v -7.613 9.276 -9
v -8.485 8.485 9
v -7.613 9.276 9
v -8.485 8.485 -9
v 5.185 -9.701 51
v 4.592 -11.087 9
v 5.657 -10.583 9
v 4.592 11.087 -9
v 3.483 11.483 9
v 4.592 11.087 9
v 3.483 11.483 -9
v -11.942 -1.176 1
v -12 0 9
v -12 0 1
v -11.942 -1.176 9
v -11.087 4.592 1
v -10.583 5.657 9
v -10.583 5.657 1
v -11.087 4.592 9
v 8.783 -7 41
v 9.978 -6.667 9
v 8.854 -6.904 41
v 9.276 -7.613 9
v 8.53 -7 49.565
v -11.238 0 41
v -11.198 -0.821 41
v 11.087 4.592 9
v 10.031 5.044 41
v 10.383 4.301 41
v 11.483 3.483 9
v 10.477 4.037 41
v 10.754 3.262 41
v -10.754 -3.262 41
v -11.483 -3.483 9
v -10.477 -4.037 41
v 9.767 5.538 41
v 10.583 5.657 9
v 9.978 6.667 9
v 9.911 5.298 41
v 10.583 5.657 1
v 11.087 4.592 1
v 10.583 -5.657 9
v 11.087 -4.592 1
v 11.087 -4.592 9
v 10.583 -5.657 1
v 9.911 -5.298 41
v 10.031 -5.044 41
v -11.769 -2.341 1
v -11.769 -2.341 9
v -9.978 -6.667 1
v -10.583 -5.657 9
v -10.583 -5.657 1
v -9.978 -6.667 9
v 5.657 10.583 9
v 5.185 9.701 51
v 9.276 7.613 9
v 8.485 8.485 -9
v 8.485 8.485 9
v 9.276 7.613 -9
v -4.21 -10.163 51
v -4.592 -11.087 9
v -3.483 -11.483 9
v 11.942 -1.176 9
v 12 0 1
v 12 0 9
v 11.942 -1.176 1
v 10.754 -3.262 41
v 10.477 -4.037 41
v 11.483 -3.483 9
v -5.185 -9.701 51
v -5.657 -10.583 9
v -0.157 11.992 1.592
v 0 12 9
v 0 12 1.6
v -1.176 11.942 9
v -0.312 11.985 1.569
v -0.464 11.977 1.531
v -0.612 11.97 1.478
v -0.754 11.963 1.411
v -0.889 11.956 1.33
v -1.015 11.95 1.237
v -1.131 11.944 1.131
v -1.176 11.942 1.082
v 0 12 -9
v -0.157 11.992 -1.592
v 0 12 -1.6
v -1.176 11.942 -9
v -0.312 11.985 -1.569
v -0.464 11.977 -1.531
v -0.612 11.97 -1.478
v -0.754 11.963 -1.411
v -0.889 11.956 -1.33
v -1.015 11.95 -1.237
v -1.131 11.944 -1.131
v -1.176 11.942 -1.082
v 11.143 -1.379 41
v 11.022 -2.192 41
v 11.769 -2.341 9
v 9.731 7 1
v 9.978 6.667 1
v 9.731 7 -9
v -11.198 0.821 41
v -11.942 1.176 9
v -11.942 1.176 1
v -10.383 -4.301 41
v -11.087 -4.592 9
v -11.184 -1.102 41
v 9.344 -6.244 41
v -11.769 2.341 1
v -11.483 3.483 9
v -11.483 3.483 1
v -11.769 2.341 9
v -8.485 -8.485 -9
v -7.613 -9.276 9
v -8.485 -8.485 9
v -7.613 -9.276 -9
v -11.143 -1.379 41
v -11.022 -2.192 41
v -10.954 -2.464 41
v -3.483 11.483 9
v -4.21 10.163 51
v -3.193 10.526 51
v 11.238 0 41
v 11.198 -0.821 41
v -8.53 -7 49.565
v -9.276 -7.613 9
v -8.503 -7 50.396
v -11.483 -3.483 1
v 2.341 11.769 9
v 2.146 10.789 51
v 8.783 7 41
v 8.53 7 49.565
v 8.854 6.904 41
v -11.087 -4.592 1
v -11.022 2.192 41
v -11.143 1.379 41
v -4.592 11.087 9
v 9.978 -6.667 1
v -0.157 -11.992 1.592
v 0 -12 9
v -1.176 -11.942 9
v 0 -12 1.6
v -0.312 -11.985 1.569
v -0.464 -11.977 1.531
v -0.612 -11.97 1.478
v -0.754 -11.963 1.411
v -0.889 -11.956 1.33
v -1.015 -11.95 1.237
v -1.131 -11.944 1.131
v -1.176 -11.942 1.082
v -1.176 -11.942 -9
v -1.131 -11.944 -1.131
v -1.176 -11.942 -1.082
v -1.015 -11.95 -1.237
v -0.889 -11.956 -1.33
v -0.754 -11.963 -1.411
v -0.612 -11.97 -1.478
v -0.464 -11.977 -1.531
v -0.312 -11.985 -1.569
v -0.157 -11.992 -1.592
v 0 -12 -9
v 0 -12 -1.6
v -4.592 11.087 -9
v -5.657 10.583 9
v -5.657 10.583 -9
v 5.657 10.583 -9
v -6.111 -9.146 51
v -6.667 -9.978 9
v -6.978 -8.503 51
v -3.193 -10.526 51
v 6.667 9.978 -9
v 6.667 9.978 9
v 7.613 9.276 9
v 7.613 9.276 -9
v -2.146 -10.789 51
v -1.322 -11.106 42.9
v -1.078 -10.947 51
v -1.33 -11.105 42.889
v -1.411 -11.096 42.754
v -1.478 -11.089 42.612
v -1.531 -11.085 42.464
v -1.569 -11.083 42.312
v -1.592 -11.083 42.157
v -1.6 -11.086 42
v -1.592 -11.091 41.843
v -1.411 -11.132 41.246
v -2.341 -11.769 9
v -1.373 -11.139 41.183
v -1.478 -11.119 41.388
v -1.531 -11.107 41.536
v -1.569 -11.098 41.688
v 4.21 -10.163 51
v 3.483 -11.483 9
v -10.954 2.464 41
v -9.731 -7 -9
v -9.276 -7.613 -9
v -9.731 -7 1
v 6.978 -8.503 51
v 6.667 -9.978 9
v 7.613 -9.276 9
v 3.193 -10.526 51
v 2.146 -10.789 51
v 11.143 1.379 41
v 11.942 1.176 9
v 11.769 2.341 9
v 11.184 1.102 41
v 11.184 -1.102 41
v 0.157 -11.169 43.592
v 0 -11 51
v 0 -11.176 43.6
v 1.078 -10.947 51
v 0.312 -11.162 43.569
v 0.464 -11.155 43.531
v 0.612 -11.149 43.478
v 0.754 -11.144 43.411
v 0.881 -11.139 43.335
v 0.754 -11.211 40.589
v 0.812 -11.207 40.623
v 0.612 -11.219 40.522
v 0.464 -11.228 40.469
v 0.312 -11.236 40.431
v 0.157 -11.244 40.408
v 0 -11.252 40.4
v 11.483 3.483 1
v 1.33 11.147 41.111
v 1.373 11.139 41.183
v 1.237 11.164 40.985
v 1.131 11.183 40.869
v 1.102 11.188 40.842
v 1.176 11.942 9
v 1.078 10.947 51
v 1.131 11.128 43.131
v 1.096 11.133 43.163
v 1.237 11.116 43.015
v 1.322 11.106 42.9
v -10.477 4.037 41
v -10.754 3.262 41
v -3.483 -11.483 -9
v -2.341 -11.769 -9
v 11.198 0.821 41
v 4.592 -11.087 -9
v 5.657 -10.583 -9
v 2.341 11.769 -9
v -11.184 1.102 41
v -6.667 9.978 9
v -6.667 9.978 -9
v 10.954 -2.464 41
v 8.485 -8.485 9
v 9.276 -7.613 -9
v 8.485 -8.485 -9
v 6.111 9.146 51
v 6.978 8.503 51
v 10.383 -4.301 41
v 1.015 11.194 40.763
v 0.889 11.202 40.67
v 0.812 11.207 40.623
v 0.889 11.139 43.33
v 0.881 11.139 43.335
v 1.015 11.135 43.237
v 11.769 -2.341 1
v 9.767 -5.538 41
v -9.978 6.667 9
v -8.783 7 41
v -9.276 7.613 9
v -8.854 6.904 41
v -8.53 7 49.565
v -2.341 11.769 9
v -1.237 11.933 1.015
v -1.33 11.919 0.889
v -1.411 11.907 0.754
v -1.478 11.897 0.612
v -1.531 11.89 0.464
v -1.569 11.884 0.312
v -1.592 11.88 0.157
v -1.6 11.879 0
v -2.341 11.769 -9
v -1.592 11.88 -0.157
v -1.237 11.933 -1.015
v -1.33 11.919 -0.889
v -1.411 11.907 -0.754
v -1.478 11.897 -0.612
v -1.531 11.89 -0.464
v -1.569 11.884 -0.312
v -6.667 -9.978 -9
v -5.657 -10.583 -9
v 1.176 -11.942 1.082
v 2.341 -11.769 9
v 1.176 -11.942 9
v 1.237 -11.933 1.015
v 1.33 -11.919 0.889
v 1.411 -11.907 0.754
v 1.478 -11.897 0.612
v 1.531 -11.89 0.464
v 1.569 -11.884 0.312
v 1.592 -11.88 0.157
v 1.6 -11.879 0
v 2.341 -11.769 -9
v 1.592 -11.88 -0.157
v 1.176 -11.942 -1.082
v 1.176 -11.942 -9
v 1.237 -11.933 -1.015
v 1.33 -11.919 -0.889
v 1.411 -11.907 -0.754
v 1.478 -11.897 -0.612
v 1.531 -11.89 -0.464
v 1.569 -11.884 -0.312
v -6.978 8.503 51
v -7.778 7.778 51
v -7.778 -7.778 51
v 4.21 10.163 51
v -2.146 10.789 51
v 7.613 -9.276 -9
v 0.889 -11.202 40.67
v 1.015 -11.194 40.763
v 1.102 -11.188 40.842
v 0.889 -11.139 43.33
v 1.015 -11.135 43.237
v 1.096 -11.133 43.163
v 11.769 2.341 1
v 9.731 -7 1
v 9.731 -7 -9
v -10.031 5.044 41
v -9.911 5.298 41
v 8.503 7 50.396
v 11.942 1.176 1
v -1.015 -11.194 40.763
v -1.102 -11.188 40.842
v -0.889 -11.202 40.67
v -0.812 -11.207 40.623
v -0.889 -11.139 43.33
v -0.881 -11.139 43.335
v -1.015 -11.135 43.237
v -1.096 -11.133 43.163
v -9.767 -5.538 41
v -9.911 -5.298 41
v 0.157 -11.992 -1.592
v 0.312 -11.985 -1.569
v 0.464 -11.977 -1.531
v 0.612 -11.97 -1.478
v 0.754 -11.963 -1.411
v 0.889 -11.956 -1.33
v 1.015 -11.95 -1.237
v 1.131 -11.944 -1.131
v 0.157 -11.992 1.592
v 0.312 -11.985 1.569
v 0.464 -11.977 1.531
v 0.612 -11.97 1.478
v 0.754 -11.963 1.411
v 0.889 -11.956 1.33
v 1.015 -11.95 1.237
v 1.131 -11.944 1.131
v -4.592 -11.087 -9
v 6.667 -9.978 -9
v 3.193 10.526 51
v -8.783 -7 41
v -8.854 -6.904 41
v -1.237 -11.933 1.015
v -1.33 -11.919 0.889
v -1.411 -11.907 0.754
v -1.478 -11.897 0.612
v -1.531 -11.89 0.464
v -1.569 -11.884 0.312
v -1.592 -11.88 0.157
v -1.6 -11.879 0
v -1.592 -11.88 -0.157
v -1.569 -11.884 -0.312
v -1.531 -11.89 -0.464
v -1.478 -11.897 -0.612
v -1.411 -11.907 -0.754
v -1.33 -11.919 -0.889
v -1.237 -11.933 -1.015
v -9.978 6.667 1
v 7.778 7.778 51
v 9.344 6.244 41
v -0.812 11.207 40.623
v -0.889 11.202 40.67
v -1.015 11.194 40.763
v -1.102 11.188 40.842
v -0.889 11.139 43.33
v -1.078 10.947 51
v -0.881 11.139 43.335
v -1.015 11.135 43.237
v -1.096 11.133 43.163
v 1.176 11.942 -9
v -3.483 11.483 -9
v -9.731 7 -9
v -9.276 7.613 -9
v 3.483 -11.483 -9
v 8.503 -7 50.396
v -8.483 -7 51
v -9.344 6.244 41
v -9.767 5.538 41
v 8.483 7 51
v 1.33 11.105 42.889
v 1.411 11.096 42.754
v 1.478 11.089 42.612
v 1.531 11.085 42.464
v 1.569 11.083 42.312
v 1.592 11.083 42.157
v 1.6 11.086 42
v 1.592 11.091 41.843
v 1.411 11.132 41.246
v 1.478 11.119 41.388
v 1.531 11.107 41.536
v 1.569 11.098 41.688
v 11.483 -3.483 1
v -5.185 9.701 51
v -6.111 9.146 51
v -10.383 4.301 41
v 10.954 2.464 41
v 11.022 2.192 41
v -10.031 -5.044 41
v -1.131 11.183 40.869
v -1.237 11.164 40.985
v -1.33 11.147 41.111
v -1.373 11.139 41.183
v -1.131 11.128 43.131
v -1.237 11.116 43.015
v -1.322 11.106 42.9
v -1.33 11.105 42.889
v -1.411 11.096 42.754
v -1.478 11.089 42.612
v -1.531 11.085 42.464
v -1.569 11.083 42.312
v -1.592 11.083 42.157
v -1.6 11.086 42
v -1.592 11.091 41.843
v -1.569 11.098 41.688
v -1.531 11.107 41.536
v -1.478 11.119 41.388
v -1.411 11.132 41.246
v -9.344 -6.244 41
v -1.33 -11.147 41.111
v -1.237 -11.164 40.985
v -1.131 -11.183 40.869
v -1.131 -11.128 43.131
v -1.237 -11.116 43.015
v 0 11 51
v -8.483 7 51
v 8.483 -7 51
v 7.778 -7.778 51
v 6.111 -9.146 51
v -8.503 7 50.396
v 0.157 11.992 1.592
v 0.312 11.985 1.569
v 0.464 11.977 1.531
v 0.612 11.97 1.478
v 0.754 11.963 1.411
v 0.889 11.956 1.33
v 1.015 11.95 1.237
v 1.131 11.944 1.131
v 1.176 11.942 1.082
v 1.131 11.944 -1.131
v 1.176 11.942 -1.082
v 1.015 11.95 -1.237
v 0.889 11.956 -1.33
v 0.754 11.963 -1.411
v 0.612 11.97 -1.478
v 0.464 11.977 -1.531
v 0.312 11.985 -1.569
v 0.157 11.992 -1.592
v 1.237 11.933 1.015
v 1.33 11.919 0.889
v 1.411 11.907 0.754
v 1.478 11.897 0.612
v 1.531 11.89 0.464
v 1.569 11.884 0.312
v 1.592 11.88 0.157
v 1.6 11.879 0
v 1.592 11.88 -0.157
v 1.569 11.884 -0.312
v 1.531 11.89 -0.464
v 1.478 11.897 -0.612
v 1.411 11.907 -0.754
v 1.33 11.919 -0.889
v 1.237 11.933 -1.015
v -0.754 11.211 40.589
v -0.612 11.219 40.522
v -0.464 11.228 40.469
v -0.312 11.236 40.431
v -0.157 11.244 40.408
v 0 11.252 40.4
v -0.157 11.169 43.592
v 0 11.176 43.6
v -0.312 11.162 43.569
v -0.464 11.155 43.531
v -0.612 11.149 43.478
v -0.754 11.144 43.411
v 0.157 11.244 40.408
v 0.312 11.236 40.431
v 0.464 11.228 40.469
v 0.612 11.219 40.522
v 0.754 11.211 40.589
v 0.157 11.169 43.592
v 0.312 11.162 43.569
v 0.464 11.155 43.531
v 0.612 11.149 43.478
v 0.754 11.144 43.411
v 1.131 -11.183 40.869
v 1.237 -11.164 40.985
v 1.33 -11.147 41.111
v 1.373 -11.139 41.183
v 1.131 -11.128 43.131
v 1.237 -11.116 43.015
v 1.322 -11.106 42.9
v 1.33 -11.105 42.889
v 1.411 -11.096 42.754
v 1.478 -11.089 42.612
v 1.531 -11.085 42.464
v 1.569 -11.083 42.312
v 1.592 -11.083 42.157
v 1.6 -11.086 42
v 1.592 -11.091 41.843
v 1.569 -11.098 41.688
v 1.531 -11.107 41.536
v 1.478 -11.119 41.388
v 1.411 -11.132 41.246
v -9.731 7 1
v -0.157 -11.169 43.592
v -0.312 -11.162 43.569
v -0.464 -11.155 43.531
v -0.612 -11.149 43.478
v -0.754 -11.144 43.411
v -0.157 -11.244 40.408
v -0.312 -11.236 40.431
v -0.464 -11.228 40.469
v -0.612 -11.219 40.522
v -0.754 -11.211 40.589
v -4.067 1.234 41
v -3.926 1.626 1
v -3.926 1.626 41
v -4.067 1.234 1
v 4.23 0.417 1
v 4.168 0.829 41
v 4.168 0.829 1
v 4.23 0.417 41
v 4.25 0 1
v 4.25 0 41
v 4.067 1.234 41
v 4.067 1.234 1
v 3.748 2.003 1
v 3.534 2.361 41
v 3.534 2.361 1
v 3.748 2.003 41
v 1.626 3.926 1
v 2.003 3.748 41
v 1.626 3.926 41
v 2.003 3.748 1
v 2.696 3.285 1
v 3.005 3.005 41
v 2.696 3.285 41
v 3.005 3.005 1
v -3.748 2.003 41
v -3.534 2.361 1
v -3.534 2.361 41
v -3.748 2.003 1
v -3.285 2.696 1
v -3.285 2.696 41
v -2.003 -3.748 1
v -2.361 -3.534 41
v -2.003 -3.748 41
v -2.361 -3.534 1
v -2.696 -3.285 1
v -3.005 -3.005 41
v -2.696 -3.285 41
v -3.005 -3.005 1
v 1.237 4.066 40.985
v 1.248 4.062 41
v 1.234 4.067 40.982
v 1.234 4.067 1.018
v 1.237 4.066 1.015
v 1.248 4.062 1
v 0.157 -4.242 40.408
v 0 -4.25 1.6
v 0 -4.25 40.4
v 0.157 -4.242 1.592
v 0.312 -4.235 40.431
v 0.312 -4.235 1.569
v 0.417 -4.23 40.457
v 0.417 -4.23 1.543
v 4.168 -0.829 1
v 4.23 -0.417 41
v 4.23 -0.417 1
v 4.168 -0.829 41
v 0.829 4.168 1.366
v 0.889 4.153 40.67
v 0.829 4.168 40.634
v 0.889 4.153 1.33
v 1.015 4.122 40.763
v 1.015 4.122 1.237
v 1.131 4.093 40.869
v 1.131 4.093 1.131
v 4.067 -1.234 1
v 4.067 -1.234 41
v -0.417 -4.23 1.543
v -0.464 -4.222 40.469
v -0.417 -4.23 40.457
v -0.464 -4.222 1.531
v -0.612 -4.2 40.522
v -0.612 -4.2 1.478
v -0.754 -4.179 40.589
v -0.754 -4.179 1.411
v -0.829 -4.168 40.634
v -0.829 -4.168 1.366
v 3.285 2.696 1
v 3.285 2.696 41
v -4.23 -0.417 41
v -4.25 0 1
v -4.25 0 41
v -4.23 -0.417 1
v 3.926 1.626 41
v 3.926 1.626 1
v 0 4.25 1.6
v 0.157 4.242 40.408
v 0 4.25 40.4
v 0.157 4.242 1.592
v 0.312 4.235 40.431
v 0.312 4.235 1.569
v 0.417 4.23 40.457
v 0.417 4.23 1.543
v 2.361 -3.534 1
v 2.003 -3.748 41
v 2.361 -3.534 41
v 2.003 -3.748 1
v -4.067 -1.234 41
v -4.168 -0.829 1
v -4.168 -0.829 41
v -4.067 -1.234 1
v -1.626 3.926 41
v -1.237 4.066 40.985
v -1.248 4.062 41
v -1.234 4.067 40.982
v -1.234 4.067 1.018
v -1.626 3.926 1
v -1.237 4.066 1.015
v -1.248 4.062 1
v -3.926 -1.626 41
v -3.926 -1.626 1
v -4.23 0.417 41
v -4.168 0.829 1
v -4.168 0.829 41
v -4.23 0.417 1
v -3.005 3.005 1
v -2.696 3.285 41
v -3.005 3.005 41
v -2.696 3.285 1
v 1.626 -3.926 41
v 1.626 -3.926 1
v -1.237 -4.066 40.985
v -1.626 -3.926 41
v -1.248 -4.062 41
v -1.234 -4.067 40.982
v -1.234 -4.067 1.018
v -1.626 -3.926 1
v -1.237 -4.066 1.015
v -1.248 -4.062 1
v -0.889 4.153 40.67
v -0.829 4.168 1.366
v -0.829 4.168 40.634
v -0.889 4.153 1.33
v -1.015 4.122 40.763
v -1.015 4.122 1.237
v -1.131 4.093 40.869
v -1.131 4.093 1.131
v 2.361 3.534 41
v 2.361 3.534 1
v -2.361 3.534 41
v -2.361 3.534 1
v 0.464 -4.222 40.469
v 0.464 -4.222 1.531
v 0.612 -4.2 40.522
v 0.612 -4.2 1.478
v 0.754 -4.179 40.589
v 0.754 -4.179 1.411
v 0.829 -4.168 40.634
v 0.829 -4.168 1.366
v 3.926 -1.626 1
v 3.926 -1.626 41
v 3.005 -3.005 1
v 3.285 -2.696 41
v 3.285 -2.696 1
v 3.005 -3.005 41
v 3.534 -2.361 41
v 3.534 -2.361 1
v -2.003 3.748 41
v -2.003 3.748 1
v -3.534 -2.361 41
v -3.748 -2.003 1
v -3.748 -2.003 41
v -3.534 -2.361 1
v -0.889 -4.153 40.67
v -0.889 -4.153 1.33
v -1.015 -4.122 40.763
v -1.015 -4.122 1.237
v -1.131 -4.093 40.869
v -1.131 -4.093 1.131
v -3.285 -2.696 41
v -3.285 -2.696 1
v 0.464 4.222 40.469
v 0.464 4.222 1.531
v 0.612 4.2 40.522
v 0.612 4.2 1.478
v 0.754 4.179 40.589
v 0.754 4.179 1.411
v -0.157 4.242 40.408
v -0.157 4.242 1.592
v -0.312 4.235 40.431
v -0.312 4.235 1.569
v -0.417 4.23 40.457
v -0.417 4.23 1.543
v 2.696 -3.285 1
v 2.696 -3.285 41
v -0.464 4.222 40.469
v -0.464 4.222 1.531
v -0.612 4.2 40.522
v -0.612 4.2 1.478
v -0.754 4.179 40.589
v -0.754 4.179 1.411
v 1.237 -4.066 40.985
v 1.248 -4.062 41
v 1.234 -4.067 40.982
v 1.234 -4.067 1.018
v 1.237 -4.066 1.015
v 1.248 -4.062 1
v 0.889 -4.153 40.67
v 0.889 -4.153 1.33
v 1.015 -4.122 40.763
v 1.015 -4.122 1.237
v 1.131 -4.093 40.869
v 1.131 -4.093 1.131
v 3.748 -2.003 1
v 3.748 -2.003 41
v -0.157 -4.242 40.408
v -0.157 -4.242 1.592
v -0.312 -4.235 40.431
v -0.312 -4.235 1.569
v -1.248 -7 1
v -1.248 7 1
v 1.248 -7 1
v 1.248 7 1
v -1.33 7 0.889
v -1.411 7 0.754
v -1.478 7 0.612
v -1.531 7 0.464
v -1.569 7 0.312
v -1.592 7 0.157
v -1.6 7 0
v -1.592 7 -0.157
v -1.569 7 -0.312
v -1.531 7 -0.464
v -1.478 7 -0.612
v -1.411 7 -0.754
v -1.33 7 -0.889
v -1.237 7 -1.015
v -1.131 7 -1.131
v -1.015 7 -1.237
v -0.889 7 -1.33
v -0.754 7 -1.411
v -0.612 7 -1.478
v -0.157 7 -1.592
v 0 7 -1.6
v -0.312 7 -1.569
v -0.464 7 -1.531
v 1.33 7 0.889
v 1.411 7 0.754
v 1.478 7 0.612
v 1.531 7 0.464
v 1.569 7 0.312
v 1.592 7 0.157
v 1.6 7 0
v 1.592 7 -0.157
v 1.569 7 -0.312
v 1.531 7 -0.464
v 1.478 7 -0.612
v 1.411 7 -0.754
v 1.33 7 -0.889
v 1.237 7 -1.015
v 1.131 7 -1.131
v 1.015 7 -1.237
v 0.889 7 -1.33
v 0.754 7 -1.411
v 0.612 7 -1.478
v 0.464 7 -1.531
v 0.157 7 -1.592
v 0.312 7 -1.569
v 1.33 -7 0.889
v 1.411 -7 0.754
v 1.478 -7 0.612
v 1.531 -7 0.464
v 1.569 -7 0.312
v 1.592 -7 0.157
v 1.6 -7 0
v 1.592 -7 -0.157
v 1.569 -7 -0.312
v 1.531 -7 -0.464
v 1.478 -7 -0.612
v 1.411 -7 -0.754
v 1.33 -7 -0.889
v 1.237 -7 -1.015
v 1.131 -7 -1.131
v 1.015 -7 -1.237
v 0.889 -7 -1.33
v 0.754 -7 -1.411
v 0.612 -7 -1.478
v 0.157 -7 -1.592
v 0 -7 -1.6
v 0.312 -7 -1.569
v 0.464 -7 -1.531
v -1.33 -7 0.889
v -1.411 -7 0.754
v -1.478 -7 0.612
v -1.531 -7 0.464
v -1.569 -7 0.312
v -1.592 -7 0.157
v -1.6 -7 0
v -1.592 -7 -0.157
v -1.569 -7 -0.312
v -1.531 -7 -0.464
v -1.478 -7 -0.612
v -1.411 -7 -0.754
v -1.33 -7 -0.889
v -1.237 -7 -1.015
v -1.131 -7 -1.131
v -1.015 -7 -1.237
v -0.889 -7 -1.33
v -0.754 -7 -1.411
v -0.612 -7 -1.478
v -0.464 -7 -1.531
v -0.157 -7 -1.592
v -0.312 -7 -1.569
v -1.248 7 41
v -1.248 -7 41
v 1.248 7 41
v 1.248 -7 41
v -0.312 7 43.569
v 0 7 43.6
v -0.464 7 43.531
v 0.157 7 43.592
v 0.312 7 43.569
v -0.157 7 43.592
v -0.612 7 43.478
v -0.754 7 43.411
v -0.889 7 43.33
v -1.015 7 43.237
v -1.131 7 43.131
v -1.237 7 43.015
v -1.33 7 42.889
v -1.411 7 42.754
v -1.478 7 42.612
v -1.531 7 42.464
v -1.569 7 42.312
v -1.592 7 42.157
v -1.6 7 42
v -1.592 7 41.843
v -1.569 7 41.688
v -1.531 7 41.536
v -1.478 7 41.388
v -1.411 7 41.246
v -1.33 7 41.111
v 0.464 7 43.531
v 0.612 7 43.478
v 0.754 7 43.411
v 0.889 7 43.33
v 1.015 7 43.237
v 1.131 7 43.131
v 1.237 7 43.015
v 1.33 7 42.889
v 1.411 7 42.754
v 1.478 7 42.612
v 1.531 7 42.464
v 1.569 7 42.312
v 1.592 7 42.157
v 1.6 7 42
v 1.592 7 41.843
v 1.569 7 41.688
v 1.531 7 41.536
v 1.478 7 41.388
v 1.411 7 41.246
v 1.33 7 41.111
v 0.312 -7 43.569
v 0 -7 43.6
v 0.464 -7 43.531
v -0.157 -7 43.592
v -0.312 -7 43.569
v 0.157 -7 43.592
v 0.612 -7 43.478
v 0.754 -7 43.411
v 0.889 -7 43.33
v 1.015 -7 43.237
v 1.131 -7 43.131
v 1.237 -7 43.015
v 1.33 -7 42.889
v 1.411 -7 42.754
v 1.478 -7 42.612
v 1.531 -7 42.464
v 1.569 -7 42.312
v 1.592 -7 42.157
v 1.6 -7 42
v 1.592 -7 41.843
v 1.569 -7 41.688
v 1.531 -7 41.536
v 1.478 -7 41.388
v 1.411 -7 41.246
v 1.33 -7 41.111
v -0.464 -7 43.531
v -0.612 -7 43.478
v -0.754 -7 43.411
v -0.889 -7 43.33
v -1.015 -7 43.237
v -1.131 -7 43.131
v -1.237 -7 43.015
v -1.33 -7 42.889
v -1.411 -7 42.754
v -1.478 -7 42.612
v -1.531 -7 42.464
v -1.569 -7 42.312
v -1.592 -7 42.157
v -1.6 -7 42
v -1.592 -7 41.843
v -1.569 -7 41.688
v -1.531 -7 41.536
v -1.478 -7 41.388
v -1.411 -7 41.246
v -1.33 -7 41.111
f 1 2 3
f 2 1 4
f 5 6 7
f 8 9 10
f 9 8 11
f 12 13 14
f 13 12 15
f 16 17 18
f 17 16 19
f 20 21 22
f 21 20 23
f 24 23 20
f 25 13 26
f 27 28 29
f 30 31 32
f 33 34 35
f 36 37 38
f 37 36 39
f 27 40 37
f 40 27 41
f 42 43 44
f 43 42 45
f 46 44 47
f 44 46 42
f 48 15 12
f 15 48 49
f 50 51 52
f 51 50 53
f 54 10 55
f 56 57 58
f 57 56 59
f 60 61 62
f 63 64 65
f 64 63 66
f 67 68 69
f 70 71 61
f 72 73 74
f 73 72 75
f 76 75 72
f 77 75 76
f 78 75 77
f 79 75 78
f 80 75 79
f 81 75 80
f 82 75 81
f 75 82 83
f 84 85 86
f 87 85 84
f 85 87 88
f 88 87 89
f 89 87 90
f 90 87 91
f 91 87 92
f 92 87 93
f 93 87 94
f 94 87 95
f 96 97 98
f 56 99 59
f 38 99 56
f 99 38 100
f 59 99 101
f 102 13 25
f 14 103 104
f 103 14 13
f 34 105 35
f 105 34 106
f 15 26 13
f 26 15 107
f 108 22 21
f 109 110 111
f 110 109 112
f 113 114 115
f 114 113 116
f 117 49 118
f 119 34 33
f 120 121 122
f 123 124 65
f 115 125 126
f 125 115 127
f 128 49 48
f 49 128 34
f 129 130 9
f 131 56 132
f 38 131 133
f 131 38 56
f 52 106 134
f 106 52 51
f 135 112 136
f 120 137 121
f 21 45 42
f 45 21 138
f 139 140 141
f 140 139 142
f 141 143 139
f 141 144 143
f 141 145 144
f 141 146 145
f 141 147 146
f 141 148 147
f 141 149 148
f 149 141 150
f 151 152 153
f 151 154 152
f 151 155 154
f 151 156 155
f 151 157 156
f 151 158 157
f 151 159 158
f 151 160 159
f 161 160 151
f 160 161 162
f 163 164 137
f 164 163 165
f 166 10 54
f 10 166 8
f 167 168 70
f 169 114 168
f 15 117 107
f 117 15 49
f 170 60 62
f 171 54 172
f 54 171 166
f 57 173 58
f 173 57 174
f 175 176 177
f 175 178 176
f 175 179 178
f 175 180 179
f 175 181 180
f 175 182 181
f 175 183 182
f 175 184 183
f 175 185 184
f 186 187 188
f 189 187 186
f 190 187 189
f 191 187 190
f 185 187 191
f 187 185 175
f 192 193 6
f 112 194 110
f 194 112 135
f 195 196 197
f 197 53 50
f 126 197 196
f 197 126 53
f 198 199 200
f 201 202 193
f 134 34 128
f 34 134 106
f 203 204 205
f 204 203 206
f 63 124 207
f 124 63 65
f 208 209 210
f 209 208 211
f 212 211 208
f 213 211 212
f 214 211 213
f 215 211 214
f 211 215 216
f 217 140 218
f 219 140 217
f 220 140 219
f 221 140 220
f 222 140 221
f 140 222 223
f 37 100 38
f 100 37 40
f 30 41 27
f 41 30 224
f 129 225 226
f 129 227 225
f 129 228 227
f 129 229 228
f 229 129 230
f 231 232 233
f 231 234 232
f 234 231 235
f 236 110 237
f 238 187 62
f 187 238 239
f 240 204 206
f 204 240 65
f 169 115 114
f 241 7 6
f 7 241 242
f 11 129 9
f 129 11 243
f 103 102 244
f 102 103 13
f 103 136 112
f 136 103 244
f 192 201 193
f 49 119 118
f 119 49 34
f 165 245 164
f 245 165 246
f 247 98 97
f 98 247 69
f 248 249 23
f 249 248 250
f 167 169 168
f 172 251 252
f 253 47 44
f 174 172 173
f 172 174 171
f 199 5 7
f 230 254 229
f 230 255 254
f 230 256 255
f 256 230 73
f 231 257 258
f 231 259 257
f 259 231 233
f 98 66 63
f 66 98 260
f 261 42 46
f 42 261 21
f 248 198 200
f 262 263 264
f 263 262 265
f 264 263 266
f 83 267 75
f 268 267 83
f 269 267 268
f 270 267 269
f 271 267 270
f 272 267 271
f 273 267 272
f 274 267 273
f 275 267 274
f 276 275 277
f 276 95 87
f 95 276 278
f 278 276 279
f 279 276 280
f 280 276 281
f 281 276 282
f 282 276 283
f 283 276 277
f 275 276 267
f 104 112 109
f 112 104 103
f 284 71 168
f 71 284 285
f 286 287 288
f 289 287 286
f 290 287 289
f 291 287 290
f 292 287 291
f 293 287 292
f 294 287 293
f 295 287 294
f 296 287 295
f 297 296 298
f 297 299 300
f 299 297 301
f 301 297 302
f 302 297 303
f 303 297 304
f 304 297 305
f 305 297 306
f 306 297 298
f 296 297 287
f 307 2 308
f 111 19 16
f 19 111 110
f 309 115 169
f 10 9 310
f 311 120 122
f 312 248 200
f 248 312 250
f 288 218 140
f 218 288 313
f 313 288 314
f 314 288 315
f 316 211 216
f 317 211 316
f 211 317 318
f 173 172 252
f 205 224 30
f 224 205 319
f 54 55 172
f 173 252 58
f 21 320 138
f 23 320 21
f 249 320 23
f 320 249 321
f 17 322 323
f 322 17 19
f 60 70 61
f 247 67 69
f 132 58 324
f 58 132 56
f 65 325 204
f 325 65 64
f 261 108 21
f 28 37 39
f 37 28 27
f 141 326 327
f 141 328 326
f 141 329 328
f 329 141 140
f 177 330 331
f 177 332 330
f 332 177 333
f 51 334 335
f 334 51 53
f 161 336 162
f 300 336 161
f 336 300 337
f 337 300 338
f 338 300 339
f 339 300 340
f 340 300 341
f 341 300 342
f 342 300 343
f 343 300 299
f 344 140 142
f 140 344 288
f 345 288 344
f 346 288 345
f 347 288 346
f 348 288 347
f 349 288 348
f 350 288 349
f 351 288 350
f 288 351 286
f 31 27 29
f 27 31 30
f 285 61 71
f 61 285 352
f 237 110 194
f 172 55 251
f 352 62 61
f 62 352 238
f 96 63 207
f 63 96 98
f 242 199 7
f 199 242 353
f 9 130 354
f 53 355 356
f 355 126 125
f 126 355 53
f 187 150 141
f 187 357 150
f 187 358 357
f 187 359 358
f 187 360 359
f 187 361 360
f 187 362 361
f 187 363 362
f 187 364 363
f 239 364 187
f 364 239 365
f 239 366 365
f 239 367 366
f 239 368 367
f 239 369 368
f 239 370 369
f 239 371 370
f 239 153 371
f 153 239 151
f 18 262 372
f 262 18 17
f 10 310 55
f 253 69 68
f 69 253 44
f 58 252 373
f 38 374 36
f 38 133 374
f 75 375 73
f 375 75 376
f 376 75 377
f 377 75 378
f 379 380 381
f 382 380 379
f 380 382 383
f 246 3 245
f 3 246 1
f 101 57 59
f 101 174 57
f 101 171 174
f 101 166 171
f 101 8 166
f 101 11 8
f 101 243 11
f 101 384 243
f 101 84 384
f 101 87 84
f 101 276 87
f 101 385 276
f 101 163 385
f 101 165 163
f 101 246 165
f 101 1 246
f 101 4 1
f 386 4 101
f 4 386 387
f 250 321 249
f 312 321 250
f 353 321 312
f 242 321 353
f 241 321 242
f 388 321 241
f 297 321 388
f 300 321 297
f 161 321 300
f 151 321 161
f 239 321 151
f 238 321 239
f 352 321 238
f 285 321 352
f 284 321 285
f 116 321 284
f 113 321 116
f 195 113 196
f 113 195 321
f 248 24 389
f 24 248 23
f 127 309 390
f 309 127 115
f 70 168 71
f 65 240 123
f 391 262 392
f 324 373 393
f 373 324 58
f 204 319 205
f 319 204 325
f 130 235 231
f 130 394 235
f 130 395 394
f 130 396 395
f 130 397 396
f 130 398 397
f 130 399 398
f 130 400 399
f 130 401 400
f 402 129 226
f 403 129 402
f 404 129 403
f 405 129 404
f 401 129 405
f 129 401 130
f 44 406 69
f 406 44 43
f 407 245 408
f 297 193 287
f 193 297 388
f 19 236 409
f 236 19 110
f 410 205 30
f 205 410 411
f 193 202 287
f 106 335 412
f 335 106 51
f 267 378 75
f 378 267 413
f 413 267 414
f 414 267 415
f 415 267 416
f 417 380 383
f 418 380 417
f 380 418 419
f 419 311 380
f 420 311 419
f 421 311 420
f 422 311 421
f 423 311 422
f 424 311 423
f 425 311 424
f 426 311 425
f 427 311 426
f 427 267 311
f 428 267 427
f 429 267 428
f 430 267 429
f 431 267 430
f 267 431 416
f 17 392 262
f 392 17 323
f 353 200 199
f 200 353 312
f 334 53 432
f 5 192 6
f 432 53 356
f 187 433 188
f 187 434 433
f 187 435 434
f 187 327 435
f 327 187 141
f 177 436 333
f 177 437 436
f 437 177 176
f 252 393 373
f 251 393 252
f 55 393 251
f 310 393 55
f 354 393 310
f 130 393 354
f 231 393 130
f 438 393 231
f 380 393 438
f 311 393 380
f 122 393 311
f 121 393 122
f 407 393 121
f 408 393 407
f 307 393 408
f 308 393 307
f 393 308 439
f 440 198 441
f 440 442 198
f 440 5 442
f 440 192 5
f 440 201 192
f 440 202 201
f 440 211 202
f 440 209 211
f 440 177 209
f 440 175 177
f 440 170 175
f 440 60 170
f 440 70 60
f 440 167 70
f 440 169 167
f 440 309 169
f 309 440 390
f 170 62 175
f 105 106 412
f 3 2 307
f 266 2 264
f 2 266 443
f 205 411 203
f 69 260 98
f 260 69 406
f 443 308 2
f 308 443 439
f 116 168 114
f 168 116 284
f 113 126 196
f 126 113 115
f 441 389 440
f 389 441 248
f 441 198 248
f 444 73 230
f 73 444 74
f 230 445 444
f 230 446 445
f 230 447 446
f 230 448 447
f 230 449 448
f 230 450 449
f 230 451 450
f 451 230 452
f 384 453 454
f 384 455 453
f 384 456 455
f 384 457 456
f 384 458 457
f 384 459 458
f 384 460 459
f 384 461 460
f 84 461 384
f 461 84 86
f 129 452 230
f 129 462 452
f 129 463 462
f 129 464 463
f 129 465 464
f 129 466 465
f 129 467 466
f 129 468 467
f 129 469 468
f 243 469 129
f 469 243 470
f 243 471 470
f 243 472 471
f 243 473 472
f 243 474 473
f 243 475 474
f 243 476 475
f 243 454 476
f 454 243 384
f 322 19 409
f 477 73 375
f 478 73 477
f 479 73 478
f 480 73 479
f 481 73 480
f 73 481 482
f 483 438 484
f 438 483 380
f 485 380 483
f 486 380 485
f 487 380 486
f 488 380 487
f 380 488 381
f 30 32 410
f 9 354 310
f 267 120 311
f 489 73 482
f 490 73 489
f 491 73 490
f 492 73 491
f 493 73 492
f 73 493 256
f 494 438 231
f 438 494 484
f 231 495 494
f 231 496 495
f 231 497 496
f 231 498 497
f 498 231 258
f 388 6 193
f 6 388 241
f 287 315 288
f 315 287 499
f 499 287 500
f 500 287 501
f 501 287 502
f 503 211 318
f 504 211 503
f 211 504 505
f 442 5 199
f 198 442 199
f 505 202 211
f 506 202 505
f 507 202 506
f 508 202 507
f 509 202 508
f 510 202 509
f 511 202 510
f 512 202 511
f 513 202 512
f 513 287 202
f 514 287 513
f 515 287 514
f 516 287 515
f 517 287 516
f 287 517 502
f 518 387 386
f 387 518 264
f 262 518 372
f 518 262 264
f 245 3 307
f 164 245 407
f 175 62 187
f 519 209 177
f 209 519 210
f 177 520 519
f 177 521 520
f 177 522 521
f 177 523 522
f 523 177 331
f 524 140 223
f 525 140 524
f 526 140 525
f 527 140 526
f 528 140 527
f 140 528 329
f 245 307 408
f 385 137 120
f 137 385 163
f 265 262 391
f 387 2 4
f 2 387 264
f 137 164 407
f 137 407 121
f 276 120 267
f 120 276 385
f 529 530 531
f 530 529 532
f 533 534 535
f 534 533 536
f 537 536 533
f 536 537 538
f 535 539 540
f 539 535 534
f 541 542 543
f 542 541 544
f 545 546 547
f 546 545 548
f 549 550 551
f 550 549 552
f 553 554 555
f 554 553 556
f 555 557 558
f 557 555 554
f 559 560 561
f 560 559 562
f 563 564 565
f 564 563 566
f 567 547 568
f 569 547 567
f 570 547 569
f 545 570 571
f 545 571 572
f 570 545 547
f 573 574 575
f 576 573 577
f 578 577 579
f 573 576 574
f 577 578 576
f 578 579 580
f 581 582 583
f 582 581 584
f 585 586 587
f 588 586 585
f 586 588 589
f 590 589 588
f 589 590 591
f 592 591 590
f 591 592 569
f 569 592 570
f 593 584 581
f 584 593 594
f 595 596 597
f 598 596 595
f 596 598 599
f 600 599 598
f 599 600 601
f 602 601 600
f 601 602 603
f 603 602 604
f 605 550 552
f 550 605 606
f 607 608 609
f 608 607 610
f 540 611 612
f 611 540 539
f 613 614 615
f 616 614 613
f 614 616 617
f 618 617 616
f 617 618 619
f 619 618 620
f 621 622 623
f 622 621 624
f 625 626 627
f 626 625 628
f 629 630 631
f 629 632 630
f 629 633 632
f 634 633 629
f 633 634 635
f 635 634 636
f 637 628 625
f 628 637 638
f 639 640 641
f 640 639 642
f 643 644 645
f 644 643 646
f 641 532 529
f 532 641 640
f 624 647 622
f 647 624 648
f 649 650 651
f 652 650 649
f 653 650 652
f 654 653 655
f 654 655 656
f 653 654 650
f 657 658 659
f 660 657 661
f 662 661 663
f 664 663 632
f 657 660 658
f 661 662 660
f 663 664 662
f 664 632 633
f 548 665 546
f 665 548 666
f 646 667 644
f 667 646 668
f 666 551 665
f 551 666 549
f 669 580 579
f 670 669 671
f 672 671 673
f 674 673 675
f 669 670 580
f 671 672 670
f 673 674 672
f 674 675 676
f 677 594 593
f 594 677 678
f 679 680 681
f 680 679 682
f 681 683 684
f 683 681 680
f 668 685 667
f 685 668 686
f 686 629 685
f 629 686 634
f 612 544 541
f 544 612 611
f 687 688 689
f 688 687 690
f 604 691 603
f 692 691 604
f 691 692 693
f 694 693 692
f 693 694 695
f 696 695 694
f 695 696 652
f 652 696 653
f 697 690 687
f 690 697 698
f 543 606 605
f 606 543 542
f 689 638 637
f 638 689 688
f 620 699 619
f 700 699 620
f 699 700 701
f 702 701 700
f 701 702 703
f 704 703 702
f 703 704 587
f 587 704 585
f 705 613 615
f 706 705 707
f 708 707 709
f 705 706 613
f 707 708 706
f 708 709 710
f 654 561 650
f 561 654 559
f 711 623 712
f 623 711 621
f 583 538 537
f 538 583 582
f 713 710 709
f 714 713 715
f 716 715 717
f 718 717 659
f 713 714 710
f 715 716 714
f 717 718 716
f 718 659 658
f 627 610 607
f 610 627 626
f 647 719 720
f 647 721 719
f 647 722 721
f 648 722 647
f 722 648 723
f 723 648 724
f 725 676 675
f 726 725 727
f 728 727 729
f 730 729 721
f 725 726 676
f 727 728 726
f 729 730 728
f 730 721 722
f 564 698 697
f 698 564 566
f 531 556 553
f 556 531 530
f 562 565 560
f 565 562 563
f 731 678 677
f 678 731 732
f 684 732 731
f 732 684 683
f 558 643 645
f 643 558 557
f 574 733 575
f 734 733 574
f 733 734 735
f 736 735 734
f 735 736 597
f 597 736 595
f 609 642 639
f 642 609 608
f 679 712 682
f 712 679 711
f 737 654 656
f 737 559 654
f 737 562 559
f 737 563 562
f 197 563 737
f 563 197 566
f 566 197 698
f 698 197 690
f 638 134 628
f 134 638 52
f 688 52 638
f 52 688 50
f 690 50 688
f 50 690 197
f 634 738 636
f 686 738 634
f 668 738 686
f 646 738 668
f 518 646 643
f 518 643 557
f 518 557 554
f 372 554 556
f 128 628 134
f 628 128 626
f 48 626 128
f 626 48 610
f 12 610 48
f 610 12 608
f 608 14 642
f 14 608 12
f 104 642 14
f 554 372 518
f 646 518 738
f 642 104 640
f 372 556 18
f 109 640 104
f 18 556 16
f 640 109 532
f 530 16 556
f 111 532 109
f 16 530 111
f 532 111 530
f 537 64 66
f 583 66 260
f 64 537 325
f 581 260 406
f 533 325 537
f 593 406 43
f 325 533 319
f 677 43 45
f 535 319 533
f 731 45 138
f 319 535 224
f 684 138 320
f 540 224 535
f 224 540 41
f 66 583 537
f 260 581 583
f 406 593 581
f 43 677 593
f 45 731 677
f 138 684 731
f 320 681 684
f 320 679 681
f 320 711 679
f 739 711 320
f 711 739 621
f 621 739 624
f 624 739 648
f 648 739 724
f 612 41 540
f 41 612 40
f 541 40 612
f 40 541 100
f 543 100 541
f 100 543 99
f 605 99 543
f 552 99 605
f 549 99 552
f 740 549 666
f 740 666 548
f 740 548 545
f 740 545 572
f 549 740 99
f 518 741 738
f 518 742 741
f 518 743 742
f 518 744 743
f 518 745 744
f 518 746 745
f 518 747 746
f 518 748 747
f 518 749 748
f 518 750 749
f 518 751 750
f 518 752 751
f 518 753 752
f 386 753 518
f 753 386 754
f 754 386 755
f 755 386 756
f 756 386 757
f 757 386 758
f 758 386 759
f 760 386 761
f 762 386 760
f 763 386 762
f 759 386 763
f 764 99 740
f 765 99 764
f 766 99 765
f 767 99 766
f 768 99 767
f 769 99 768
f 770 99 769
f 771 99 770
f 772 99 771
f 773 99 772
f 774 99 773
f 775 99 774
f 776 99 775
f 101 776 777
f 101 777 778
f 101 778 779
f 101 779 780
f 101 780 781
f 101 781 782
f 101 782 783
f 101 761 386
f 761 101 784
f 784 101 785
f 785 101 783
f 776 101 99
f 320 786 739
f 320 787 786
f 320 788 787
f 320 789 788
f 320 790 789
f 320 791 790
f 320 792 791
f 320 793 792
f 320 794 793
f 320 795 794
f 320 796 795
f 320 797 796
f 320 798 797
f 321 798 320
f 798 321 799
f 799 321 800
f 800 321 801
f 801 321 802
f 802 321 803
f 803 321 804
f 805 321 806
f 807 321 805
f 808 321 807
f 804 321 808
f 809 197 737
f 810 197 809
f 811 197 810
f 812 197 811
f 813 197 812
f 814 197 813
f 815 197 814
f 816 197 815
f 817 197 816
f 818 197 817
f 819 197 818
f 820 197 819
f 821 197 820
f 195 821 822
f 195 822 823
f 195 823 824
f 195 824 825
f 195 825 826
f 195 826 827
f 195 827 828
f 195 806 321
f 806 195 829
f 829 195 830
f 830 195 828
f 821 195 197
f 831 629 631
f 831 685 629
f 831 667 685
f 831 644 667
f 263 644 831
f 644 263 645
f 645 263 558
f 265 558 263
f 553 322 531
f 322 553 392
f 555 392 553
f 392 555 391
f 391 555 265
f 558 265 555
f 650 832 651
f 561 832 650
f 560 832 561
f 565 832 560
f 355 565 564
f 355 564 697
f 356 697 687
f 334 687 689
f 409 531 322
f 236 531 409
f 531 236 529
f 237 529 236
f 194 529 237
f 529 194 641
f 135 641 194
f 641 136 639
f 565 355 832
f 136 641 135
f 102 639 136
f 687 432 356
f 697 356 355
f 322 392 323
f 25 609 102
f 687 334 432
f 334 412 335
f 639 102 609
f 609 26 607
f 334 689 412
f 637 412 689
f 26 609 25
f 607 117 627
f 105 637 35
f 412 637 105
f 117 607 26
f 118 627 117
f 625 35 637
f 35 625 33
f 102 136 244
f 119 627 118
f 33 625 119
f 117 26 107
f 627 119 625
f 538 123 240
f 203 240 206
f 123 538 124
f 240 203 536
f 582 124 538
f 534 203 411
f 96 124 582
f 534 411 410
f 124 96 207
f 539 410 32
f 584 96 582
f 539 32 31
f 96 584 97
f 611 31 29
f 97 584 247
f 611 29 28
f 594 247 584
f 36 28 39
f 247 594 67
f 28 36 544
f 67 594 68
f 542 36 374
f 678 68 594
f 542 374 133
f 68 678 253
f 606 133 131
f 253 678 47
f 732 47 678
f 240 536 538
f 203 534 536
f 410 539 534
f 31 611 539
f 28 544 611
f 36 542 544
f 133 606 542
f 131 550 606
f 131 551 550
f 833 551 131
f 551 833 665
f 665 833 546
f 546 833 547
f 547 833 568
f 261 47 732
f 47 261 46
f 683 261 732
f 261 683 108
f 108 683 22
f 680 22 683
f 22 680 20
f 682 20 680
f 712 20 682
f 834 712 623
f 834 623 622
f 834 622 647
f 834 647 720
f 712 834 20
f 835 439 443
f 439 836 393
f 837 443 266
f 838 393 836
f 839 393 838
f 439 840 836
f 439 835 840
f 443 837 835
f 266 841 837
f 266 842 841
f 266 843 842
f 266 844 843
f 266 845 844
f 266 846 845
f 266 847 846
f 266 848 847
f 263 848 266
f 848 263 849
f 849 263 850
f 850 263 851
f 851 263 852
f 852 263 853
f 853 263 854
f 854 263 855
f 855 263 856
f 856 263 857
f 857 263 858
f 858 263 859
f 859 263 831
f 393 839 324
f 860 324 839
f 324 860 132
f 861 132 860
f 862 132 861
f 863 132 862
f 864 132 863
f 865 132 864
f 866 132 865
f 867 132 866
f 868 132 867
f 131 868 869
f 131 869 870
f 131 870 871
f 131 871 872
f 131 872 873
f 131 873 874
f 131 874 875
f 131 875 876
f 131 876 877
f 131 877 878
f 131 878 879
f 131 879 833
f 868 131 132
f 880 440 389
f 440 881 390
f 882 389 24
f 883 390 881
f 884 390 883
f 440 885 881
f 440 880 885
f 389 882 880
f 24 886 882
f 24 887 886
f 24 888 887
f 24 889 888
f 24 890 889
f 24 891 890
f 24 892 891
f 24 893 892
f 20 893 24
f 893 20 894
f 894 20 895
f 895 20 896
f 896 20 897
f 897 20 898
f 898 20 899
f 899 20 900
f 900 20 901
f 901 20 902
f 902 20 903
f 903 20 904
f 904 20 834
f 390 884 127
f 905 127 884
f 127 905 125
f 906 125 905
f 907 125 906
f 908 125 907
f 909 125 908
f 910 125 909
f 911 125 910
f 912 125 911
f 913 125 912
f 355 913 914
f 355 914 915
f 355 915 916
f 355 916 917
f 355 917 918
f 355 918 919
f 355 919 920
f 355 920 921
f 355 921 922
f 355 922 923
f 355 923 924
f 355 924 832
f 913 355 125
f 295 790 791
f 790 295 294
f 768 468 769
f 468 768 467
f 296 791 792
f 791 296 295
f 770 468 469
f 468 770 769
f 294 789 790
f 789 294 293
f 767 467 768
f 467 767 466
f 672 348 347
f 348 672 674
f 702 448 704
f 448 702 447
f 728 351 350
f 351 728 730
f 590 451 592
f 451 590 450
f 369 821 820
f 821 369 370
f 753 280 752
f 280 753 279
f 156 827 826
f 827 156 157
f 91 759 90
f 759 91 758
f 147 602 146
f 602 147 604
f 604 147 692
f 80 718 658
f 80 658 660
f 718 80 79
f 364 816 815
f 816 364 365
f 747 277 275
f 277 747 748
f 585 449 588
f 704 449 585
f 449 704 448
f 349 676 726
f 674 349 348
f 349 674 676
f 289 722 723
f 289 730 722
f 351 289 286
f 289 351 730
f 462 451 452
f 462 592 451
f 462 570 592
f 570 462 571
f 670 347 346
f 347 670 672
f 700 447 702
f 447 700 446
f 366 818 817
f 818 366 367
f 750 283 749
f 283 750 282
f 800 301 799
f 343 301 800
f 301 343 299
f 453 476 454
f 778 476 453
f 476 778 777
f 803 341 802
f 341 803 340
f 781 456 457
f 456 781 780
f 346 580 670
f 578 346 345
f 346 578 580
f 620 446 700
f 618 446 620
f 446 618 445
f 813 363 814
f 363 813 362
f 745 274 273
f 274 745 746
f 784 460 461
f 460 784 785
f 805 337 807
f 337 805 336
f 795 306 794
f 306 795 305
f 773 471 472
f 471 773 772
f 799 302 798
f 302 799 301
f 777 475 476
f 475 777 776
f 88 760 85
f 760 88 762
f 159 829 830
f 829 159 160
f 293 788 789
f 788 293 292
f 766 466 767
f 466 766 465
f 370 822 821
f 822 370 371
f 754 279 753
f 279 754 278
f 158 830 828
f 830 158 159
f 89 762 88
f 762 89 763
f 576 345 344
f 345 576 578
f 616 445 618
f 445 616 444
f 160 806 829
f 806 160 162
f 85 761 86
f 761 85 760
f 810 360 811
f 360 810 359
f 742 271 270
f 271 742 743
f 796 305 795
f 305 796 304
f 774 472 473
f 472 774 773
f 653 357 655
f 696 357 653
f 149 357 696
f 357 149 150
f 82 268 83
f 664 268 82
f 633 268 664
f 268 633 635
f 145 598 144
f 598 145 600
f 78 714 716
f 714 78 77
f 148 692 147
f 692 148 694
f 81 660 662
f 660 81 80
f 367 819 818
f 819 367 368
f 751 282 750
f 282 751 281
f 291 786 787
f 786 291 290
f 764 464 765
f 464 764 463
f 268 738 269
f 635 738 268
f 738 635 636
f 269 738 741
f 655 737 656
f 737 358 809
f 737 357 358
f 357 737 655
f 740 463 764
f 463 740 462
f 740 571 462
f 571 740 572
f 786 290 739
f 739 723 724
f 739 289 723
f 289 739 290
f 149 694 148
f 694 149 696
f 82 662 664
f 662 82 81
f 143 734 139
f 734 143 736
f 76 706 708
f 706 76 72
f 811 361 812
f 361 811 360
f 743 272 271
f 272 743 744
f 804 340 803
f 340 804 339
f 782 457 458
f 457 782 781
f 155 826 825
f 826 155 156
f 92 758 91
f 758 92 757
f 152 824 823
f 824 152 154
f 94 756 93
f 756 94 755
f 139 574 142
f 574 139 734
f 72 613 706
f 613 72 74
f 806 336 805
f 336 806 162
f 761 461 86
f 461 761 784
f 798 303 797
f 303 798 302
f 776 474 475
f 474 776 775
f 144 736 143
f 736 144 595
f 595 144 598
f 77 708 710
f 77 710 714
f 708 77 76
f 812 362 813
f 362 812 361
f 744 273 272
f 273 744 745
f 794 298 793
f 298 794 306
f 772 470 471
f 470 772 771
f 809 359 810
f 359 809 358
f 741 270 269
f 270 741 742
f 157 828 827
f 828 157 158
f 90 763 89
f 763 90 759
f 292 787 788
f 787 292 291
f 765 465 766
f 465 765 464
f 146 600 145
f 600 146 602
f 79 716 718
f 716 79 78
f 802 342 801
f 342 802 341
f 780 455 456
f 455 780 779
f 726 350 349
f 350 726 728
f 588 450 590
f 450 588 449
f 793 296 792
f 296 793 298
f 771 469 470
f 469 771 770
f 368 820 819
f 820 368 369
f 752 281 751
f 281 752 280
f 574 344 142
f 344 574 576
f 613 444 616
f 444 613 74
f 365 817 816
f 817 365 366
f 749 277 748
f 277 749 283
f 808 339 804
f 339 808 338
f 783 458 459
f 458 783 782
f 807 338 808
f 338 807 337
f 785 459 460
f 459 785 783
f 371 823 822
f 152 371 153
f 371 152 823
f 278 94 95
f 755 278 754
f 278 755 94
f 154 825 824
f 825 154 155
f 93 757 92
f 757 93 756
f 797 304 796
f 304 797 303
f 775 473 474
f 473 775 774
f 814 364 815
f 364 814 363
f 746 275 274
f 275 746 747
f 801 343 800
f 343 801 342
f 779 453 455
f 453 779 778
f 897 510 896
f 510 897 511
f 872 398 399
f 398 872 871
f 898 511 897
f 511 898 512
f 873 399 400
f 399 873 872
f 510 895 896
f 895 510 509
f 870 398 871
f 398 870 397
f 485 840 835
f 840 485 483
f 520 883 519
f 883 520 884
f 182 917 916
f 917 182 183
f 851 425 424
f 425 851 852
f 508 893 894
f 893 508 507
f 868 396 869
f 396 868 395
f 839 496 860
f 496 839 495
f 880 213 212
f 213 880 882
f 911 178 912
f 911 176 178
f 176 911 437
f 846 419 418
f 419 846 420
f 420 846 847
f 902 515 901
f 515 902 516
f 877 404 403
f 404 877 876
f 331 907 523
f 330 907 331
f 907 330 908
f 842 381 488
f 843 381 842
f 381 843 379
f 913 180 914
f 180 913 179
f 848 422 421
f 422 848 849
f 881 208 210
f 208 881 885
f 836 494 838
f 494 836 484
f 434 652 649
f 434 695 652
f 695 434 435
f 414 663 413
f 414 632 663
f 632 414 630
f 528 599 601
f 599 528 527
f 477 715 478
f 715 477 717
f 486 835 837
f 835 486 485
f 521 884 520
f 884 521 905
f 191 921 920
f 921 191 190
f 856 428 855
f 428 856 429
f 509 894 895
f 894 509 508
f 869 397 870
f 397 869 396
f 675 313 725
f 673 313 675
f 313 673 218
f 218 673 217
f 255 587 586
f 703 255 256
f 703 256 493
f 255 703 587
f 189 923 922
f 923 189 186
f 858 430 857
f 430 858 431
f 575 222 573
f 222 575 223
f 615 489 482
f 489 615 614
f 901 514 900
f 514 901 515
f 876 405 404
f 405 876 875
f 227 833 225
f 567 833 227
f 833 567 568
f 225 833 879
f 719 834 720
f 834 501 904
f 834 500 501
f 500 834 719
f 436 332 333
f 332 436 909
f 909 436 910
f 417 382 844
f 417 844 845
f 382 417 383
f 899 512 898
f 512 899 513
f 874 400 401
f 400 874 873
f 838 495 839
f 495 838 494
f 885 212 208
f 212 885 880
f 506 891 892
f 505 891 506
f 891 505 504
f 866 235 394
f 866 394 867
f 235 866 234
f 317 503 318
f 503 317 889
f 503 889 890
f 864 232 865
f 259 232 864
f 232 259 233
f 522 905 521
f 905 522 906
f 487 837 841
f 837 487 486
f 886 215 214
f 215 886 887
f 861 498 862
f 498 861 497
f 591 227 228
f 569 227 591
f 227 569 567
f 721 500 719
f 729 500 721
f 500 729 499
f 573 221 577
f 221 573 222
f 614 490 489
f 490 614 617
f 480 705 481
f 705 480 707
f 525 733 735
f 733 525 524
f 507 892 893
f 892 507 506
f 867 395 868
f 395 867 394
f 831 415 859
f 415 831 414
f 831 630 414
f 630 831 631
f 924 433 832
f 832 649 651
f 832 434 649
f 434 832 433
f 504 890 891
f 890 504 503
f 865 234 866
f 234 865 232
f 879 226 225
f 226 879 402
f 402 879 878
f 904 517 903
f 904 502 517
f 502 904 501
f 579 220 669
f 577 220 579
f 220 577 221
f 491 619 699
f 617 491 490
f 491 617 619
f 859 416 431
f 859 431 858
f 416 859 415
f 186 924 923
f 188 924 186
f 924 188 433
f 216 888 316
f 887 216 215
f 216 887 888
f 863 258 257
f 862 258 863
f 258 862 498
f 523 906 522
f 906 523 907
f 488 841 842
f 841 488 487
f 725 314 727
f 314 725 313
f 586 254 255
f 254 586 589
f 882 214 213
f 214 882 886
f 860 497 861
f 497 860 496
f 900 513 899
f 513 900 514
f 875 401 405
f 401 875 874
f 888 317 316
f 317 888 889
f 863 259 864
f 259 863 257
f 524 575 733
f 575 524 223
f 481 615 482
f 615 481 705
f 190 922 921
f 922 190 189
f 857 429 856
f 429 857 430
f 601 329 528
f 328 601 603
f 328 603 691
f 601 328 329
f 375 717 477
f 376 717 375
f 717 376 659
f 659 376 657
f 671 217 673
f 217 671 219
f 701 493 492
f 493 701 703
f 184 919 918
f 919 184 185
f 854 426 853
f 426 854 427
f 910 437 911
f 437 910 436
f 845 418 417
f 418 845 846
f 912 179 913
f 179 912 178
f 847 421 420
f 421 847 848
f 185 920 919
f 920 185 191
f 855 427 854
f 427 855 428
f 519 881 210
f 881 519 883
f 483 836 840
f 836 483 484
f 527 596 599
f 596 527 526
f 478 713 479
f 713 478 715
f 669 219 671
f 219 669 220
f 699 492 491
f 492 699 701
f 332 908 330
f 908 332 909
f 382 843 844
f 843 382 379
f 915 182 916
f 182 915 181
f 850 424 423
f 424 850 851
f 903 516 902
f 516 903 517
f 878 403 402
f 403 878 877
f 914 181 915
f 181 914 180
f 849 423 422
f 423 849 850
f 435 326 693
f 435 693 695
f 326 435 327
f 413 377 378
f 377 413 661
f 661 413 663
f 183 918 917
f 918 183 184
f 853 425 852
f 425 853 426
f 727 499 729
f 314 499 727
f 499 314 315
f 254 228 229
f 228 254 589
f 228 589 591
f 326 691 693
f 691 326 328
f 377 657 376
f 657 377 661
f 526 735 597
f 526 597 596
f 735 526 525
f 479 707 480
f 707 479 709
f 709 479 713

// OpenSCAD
// Jimmy Part 01c: Articulated Bionic Leg Strut (Thigh / Shin Segment, Print 4x)
$fn = 64;

module bionic_leg_strut(length_mm = 42) {
    difference() {
        hull() {
            cylinder(h = 18, d = 24, center = true);
            translate([0, 0, length_mm]) cylinder(h = 18, d = 22, center = true);
        }
        // Internal 1 Mbps TTL daisy-chain wire tunnel
        translate([0, 0, -12]) cylinder(h = length_mm + 24, d = 8.5);
        // Lower and upper STS3215 horn clevis slots
        translate([-14, -7, -11]) cube([28, 14, 12]);
        translate([-14, -7, length_mm - 1]) cube([28, 14, 12]);
        // M3 cross-pin hinge bores
        rotate([90, 0, 0]) cylinder(h = 30, d = 3.2, center = true);
        translate([0, 0, length_mm]) rotate([90, 0, 0]) cylinder(h = 30, d = 3.2, center = true);
    }
}

bionic_leg_strut();
